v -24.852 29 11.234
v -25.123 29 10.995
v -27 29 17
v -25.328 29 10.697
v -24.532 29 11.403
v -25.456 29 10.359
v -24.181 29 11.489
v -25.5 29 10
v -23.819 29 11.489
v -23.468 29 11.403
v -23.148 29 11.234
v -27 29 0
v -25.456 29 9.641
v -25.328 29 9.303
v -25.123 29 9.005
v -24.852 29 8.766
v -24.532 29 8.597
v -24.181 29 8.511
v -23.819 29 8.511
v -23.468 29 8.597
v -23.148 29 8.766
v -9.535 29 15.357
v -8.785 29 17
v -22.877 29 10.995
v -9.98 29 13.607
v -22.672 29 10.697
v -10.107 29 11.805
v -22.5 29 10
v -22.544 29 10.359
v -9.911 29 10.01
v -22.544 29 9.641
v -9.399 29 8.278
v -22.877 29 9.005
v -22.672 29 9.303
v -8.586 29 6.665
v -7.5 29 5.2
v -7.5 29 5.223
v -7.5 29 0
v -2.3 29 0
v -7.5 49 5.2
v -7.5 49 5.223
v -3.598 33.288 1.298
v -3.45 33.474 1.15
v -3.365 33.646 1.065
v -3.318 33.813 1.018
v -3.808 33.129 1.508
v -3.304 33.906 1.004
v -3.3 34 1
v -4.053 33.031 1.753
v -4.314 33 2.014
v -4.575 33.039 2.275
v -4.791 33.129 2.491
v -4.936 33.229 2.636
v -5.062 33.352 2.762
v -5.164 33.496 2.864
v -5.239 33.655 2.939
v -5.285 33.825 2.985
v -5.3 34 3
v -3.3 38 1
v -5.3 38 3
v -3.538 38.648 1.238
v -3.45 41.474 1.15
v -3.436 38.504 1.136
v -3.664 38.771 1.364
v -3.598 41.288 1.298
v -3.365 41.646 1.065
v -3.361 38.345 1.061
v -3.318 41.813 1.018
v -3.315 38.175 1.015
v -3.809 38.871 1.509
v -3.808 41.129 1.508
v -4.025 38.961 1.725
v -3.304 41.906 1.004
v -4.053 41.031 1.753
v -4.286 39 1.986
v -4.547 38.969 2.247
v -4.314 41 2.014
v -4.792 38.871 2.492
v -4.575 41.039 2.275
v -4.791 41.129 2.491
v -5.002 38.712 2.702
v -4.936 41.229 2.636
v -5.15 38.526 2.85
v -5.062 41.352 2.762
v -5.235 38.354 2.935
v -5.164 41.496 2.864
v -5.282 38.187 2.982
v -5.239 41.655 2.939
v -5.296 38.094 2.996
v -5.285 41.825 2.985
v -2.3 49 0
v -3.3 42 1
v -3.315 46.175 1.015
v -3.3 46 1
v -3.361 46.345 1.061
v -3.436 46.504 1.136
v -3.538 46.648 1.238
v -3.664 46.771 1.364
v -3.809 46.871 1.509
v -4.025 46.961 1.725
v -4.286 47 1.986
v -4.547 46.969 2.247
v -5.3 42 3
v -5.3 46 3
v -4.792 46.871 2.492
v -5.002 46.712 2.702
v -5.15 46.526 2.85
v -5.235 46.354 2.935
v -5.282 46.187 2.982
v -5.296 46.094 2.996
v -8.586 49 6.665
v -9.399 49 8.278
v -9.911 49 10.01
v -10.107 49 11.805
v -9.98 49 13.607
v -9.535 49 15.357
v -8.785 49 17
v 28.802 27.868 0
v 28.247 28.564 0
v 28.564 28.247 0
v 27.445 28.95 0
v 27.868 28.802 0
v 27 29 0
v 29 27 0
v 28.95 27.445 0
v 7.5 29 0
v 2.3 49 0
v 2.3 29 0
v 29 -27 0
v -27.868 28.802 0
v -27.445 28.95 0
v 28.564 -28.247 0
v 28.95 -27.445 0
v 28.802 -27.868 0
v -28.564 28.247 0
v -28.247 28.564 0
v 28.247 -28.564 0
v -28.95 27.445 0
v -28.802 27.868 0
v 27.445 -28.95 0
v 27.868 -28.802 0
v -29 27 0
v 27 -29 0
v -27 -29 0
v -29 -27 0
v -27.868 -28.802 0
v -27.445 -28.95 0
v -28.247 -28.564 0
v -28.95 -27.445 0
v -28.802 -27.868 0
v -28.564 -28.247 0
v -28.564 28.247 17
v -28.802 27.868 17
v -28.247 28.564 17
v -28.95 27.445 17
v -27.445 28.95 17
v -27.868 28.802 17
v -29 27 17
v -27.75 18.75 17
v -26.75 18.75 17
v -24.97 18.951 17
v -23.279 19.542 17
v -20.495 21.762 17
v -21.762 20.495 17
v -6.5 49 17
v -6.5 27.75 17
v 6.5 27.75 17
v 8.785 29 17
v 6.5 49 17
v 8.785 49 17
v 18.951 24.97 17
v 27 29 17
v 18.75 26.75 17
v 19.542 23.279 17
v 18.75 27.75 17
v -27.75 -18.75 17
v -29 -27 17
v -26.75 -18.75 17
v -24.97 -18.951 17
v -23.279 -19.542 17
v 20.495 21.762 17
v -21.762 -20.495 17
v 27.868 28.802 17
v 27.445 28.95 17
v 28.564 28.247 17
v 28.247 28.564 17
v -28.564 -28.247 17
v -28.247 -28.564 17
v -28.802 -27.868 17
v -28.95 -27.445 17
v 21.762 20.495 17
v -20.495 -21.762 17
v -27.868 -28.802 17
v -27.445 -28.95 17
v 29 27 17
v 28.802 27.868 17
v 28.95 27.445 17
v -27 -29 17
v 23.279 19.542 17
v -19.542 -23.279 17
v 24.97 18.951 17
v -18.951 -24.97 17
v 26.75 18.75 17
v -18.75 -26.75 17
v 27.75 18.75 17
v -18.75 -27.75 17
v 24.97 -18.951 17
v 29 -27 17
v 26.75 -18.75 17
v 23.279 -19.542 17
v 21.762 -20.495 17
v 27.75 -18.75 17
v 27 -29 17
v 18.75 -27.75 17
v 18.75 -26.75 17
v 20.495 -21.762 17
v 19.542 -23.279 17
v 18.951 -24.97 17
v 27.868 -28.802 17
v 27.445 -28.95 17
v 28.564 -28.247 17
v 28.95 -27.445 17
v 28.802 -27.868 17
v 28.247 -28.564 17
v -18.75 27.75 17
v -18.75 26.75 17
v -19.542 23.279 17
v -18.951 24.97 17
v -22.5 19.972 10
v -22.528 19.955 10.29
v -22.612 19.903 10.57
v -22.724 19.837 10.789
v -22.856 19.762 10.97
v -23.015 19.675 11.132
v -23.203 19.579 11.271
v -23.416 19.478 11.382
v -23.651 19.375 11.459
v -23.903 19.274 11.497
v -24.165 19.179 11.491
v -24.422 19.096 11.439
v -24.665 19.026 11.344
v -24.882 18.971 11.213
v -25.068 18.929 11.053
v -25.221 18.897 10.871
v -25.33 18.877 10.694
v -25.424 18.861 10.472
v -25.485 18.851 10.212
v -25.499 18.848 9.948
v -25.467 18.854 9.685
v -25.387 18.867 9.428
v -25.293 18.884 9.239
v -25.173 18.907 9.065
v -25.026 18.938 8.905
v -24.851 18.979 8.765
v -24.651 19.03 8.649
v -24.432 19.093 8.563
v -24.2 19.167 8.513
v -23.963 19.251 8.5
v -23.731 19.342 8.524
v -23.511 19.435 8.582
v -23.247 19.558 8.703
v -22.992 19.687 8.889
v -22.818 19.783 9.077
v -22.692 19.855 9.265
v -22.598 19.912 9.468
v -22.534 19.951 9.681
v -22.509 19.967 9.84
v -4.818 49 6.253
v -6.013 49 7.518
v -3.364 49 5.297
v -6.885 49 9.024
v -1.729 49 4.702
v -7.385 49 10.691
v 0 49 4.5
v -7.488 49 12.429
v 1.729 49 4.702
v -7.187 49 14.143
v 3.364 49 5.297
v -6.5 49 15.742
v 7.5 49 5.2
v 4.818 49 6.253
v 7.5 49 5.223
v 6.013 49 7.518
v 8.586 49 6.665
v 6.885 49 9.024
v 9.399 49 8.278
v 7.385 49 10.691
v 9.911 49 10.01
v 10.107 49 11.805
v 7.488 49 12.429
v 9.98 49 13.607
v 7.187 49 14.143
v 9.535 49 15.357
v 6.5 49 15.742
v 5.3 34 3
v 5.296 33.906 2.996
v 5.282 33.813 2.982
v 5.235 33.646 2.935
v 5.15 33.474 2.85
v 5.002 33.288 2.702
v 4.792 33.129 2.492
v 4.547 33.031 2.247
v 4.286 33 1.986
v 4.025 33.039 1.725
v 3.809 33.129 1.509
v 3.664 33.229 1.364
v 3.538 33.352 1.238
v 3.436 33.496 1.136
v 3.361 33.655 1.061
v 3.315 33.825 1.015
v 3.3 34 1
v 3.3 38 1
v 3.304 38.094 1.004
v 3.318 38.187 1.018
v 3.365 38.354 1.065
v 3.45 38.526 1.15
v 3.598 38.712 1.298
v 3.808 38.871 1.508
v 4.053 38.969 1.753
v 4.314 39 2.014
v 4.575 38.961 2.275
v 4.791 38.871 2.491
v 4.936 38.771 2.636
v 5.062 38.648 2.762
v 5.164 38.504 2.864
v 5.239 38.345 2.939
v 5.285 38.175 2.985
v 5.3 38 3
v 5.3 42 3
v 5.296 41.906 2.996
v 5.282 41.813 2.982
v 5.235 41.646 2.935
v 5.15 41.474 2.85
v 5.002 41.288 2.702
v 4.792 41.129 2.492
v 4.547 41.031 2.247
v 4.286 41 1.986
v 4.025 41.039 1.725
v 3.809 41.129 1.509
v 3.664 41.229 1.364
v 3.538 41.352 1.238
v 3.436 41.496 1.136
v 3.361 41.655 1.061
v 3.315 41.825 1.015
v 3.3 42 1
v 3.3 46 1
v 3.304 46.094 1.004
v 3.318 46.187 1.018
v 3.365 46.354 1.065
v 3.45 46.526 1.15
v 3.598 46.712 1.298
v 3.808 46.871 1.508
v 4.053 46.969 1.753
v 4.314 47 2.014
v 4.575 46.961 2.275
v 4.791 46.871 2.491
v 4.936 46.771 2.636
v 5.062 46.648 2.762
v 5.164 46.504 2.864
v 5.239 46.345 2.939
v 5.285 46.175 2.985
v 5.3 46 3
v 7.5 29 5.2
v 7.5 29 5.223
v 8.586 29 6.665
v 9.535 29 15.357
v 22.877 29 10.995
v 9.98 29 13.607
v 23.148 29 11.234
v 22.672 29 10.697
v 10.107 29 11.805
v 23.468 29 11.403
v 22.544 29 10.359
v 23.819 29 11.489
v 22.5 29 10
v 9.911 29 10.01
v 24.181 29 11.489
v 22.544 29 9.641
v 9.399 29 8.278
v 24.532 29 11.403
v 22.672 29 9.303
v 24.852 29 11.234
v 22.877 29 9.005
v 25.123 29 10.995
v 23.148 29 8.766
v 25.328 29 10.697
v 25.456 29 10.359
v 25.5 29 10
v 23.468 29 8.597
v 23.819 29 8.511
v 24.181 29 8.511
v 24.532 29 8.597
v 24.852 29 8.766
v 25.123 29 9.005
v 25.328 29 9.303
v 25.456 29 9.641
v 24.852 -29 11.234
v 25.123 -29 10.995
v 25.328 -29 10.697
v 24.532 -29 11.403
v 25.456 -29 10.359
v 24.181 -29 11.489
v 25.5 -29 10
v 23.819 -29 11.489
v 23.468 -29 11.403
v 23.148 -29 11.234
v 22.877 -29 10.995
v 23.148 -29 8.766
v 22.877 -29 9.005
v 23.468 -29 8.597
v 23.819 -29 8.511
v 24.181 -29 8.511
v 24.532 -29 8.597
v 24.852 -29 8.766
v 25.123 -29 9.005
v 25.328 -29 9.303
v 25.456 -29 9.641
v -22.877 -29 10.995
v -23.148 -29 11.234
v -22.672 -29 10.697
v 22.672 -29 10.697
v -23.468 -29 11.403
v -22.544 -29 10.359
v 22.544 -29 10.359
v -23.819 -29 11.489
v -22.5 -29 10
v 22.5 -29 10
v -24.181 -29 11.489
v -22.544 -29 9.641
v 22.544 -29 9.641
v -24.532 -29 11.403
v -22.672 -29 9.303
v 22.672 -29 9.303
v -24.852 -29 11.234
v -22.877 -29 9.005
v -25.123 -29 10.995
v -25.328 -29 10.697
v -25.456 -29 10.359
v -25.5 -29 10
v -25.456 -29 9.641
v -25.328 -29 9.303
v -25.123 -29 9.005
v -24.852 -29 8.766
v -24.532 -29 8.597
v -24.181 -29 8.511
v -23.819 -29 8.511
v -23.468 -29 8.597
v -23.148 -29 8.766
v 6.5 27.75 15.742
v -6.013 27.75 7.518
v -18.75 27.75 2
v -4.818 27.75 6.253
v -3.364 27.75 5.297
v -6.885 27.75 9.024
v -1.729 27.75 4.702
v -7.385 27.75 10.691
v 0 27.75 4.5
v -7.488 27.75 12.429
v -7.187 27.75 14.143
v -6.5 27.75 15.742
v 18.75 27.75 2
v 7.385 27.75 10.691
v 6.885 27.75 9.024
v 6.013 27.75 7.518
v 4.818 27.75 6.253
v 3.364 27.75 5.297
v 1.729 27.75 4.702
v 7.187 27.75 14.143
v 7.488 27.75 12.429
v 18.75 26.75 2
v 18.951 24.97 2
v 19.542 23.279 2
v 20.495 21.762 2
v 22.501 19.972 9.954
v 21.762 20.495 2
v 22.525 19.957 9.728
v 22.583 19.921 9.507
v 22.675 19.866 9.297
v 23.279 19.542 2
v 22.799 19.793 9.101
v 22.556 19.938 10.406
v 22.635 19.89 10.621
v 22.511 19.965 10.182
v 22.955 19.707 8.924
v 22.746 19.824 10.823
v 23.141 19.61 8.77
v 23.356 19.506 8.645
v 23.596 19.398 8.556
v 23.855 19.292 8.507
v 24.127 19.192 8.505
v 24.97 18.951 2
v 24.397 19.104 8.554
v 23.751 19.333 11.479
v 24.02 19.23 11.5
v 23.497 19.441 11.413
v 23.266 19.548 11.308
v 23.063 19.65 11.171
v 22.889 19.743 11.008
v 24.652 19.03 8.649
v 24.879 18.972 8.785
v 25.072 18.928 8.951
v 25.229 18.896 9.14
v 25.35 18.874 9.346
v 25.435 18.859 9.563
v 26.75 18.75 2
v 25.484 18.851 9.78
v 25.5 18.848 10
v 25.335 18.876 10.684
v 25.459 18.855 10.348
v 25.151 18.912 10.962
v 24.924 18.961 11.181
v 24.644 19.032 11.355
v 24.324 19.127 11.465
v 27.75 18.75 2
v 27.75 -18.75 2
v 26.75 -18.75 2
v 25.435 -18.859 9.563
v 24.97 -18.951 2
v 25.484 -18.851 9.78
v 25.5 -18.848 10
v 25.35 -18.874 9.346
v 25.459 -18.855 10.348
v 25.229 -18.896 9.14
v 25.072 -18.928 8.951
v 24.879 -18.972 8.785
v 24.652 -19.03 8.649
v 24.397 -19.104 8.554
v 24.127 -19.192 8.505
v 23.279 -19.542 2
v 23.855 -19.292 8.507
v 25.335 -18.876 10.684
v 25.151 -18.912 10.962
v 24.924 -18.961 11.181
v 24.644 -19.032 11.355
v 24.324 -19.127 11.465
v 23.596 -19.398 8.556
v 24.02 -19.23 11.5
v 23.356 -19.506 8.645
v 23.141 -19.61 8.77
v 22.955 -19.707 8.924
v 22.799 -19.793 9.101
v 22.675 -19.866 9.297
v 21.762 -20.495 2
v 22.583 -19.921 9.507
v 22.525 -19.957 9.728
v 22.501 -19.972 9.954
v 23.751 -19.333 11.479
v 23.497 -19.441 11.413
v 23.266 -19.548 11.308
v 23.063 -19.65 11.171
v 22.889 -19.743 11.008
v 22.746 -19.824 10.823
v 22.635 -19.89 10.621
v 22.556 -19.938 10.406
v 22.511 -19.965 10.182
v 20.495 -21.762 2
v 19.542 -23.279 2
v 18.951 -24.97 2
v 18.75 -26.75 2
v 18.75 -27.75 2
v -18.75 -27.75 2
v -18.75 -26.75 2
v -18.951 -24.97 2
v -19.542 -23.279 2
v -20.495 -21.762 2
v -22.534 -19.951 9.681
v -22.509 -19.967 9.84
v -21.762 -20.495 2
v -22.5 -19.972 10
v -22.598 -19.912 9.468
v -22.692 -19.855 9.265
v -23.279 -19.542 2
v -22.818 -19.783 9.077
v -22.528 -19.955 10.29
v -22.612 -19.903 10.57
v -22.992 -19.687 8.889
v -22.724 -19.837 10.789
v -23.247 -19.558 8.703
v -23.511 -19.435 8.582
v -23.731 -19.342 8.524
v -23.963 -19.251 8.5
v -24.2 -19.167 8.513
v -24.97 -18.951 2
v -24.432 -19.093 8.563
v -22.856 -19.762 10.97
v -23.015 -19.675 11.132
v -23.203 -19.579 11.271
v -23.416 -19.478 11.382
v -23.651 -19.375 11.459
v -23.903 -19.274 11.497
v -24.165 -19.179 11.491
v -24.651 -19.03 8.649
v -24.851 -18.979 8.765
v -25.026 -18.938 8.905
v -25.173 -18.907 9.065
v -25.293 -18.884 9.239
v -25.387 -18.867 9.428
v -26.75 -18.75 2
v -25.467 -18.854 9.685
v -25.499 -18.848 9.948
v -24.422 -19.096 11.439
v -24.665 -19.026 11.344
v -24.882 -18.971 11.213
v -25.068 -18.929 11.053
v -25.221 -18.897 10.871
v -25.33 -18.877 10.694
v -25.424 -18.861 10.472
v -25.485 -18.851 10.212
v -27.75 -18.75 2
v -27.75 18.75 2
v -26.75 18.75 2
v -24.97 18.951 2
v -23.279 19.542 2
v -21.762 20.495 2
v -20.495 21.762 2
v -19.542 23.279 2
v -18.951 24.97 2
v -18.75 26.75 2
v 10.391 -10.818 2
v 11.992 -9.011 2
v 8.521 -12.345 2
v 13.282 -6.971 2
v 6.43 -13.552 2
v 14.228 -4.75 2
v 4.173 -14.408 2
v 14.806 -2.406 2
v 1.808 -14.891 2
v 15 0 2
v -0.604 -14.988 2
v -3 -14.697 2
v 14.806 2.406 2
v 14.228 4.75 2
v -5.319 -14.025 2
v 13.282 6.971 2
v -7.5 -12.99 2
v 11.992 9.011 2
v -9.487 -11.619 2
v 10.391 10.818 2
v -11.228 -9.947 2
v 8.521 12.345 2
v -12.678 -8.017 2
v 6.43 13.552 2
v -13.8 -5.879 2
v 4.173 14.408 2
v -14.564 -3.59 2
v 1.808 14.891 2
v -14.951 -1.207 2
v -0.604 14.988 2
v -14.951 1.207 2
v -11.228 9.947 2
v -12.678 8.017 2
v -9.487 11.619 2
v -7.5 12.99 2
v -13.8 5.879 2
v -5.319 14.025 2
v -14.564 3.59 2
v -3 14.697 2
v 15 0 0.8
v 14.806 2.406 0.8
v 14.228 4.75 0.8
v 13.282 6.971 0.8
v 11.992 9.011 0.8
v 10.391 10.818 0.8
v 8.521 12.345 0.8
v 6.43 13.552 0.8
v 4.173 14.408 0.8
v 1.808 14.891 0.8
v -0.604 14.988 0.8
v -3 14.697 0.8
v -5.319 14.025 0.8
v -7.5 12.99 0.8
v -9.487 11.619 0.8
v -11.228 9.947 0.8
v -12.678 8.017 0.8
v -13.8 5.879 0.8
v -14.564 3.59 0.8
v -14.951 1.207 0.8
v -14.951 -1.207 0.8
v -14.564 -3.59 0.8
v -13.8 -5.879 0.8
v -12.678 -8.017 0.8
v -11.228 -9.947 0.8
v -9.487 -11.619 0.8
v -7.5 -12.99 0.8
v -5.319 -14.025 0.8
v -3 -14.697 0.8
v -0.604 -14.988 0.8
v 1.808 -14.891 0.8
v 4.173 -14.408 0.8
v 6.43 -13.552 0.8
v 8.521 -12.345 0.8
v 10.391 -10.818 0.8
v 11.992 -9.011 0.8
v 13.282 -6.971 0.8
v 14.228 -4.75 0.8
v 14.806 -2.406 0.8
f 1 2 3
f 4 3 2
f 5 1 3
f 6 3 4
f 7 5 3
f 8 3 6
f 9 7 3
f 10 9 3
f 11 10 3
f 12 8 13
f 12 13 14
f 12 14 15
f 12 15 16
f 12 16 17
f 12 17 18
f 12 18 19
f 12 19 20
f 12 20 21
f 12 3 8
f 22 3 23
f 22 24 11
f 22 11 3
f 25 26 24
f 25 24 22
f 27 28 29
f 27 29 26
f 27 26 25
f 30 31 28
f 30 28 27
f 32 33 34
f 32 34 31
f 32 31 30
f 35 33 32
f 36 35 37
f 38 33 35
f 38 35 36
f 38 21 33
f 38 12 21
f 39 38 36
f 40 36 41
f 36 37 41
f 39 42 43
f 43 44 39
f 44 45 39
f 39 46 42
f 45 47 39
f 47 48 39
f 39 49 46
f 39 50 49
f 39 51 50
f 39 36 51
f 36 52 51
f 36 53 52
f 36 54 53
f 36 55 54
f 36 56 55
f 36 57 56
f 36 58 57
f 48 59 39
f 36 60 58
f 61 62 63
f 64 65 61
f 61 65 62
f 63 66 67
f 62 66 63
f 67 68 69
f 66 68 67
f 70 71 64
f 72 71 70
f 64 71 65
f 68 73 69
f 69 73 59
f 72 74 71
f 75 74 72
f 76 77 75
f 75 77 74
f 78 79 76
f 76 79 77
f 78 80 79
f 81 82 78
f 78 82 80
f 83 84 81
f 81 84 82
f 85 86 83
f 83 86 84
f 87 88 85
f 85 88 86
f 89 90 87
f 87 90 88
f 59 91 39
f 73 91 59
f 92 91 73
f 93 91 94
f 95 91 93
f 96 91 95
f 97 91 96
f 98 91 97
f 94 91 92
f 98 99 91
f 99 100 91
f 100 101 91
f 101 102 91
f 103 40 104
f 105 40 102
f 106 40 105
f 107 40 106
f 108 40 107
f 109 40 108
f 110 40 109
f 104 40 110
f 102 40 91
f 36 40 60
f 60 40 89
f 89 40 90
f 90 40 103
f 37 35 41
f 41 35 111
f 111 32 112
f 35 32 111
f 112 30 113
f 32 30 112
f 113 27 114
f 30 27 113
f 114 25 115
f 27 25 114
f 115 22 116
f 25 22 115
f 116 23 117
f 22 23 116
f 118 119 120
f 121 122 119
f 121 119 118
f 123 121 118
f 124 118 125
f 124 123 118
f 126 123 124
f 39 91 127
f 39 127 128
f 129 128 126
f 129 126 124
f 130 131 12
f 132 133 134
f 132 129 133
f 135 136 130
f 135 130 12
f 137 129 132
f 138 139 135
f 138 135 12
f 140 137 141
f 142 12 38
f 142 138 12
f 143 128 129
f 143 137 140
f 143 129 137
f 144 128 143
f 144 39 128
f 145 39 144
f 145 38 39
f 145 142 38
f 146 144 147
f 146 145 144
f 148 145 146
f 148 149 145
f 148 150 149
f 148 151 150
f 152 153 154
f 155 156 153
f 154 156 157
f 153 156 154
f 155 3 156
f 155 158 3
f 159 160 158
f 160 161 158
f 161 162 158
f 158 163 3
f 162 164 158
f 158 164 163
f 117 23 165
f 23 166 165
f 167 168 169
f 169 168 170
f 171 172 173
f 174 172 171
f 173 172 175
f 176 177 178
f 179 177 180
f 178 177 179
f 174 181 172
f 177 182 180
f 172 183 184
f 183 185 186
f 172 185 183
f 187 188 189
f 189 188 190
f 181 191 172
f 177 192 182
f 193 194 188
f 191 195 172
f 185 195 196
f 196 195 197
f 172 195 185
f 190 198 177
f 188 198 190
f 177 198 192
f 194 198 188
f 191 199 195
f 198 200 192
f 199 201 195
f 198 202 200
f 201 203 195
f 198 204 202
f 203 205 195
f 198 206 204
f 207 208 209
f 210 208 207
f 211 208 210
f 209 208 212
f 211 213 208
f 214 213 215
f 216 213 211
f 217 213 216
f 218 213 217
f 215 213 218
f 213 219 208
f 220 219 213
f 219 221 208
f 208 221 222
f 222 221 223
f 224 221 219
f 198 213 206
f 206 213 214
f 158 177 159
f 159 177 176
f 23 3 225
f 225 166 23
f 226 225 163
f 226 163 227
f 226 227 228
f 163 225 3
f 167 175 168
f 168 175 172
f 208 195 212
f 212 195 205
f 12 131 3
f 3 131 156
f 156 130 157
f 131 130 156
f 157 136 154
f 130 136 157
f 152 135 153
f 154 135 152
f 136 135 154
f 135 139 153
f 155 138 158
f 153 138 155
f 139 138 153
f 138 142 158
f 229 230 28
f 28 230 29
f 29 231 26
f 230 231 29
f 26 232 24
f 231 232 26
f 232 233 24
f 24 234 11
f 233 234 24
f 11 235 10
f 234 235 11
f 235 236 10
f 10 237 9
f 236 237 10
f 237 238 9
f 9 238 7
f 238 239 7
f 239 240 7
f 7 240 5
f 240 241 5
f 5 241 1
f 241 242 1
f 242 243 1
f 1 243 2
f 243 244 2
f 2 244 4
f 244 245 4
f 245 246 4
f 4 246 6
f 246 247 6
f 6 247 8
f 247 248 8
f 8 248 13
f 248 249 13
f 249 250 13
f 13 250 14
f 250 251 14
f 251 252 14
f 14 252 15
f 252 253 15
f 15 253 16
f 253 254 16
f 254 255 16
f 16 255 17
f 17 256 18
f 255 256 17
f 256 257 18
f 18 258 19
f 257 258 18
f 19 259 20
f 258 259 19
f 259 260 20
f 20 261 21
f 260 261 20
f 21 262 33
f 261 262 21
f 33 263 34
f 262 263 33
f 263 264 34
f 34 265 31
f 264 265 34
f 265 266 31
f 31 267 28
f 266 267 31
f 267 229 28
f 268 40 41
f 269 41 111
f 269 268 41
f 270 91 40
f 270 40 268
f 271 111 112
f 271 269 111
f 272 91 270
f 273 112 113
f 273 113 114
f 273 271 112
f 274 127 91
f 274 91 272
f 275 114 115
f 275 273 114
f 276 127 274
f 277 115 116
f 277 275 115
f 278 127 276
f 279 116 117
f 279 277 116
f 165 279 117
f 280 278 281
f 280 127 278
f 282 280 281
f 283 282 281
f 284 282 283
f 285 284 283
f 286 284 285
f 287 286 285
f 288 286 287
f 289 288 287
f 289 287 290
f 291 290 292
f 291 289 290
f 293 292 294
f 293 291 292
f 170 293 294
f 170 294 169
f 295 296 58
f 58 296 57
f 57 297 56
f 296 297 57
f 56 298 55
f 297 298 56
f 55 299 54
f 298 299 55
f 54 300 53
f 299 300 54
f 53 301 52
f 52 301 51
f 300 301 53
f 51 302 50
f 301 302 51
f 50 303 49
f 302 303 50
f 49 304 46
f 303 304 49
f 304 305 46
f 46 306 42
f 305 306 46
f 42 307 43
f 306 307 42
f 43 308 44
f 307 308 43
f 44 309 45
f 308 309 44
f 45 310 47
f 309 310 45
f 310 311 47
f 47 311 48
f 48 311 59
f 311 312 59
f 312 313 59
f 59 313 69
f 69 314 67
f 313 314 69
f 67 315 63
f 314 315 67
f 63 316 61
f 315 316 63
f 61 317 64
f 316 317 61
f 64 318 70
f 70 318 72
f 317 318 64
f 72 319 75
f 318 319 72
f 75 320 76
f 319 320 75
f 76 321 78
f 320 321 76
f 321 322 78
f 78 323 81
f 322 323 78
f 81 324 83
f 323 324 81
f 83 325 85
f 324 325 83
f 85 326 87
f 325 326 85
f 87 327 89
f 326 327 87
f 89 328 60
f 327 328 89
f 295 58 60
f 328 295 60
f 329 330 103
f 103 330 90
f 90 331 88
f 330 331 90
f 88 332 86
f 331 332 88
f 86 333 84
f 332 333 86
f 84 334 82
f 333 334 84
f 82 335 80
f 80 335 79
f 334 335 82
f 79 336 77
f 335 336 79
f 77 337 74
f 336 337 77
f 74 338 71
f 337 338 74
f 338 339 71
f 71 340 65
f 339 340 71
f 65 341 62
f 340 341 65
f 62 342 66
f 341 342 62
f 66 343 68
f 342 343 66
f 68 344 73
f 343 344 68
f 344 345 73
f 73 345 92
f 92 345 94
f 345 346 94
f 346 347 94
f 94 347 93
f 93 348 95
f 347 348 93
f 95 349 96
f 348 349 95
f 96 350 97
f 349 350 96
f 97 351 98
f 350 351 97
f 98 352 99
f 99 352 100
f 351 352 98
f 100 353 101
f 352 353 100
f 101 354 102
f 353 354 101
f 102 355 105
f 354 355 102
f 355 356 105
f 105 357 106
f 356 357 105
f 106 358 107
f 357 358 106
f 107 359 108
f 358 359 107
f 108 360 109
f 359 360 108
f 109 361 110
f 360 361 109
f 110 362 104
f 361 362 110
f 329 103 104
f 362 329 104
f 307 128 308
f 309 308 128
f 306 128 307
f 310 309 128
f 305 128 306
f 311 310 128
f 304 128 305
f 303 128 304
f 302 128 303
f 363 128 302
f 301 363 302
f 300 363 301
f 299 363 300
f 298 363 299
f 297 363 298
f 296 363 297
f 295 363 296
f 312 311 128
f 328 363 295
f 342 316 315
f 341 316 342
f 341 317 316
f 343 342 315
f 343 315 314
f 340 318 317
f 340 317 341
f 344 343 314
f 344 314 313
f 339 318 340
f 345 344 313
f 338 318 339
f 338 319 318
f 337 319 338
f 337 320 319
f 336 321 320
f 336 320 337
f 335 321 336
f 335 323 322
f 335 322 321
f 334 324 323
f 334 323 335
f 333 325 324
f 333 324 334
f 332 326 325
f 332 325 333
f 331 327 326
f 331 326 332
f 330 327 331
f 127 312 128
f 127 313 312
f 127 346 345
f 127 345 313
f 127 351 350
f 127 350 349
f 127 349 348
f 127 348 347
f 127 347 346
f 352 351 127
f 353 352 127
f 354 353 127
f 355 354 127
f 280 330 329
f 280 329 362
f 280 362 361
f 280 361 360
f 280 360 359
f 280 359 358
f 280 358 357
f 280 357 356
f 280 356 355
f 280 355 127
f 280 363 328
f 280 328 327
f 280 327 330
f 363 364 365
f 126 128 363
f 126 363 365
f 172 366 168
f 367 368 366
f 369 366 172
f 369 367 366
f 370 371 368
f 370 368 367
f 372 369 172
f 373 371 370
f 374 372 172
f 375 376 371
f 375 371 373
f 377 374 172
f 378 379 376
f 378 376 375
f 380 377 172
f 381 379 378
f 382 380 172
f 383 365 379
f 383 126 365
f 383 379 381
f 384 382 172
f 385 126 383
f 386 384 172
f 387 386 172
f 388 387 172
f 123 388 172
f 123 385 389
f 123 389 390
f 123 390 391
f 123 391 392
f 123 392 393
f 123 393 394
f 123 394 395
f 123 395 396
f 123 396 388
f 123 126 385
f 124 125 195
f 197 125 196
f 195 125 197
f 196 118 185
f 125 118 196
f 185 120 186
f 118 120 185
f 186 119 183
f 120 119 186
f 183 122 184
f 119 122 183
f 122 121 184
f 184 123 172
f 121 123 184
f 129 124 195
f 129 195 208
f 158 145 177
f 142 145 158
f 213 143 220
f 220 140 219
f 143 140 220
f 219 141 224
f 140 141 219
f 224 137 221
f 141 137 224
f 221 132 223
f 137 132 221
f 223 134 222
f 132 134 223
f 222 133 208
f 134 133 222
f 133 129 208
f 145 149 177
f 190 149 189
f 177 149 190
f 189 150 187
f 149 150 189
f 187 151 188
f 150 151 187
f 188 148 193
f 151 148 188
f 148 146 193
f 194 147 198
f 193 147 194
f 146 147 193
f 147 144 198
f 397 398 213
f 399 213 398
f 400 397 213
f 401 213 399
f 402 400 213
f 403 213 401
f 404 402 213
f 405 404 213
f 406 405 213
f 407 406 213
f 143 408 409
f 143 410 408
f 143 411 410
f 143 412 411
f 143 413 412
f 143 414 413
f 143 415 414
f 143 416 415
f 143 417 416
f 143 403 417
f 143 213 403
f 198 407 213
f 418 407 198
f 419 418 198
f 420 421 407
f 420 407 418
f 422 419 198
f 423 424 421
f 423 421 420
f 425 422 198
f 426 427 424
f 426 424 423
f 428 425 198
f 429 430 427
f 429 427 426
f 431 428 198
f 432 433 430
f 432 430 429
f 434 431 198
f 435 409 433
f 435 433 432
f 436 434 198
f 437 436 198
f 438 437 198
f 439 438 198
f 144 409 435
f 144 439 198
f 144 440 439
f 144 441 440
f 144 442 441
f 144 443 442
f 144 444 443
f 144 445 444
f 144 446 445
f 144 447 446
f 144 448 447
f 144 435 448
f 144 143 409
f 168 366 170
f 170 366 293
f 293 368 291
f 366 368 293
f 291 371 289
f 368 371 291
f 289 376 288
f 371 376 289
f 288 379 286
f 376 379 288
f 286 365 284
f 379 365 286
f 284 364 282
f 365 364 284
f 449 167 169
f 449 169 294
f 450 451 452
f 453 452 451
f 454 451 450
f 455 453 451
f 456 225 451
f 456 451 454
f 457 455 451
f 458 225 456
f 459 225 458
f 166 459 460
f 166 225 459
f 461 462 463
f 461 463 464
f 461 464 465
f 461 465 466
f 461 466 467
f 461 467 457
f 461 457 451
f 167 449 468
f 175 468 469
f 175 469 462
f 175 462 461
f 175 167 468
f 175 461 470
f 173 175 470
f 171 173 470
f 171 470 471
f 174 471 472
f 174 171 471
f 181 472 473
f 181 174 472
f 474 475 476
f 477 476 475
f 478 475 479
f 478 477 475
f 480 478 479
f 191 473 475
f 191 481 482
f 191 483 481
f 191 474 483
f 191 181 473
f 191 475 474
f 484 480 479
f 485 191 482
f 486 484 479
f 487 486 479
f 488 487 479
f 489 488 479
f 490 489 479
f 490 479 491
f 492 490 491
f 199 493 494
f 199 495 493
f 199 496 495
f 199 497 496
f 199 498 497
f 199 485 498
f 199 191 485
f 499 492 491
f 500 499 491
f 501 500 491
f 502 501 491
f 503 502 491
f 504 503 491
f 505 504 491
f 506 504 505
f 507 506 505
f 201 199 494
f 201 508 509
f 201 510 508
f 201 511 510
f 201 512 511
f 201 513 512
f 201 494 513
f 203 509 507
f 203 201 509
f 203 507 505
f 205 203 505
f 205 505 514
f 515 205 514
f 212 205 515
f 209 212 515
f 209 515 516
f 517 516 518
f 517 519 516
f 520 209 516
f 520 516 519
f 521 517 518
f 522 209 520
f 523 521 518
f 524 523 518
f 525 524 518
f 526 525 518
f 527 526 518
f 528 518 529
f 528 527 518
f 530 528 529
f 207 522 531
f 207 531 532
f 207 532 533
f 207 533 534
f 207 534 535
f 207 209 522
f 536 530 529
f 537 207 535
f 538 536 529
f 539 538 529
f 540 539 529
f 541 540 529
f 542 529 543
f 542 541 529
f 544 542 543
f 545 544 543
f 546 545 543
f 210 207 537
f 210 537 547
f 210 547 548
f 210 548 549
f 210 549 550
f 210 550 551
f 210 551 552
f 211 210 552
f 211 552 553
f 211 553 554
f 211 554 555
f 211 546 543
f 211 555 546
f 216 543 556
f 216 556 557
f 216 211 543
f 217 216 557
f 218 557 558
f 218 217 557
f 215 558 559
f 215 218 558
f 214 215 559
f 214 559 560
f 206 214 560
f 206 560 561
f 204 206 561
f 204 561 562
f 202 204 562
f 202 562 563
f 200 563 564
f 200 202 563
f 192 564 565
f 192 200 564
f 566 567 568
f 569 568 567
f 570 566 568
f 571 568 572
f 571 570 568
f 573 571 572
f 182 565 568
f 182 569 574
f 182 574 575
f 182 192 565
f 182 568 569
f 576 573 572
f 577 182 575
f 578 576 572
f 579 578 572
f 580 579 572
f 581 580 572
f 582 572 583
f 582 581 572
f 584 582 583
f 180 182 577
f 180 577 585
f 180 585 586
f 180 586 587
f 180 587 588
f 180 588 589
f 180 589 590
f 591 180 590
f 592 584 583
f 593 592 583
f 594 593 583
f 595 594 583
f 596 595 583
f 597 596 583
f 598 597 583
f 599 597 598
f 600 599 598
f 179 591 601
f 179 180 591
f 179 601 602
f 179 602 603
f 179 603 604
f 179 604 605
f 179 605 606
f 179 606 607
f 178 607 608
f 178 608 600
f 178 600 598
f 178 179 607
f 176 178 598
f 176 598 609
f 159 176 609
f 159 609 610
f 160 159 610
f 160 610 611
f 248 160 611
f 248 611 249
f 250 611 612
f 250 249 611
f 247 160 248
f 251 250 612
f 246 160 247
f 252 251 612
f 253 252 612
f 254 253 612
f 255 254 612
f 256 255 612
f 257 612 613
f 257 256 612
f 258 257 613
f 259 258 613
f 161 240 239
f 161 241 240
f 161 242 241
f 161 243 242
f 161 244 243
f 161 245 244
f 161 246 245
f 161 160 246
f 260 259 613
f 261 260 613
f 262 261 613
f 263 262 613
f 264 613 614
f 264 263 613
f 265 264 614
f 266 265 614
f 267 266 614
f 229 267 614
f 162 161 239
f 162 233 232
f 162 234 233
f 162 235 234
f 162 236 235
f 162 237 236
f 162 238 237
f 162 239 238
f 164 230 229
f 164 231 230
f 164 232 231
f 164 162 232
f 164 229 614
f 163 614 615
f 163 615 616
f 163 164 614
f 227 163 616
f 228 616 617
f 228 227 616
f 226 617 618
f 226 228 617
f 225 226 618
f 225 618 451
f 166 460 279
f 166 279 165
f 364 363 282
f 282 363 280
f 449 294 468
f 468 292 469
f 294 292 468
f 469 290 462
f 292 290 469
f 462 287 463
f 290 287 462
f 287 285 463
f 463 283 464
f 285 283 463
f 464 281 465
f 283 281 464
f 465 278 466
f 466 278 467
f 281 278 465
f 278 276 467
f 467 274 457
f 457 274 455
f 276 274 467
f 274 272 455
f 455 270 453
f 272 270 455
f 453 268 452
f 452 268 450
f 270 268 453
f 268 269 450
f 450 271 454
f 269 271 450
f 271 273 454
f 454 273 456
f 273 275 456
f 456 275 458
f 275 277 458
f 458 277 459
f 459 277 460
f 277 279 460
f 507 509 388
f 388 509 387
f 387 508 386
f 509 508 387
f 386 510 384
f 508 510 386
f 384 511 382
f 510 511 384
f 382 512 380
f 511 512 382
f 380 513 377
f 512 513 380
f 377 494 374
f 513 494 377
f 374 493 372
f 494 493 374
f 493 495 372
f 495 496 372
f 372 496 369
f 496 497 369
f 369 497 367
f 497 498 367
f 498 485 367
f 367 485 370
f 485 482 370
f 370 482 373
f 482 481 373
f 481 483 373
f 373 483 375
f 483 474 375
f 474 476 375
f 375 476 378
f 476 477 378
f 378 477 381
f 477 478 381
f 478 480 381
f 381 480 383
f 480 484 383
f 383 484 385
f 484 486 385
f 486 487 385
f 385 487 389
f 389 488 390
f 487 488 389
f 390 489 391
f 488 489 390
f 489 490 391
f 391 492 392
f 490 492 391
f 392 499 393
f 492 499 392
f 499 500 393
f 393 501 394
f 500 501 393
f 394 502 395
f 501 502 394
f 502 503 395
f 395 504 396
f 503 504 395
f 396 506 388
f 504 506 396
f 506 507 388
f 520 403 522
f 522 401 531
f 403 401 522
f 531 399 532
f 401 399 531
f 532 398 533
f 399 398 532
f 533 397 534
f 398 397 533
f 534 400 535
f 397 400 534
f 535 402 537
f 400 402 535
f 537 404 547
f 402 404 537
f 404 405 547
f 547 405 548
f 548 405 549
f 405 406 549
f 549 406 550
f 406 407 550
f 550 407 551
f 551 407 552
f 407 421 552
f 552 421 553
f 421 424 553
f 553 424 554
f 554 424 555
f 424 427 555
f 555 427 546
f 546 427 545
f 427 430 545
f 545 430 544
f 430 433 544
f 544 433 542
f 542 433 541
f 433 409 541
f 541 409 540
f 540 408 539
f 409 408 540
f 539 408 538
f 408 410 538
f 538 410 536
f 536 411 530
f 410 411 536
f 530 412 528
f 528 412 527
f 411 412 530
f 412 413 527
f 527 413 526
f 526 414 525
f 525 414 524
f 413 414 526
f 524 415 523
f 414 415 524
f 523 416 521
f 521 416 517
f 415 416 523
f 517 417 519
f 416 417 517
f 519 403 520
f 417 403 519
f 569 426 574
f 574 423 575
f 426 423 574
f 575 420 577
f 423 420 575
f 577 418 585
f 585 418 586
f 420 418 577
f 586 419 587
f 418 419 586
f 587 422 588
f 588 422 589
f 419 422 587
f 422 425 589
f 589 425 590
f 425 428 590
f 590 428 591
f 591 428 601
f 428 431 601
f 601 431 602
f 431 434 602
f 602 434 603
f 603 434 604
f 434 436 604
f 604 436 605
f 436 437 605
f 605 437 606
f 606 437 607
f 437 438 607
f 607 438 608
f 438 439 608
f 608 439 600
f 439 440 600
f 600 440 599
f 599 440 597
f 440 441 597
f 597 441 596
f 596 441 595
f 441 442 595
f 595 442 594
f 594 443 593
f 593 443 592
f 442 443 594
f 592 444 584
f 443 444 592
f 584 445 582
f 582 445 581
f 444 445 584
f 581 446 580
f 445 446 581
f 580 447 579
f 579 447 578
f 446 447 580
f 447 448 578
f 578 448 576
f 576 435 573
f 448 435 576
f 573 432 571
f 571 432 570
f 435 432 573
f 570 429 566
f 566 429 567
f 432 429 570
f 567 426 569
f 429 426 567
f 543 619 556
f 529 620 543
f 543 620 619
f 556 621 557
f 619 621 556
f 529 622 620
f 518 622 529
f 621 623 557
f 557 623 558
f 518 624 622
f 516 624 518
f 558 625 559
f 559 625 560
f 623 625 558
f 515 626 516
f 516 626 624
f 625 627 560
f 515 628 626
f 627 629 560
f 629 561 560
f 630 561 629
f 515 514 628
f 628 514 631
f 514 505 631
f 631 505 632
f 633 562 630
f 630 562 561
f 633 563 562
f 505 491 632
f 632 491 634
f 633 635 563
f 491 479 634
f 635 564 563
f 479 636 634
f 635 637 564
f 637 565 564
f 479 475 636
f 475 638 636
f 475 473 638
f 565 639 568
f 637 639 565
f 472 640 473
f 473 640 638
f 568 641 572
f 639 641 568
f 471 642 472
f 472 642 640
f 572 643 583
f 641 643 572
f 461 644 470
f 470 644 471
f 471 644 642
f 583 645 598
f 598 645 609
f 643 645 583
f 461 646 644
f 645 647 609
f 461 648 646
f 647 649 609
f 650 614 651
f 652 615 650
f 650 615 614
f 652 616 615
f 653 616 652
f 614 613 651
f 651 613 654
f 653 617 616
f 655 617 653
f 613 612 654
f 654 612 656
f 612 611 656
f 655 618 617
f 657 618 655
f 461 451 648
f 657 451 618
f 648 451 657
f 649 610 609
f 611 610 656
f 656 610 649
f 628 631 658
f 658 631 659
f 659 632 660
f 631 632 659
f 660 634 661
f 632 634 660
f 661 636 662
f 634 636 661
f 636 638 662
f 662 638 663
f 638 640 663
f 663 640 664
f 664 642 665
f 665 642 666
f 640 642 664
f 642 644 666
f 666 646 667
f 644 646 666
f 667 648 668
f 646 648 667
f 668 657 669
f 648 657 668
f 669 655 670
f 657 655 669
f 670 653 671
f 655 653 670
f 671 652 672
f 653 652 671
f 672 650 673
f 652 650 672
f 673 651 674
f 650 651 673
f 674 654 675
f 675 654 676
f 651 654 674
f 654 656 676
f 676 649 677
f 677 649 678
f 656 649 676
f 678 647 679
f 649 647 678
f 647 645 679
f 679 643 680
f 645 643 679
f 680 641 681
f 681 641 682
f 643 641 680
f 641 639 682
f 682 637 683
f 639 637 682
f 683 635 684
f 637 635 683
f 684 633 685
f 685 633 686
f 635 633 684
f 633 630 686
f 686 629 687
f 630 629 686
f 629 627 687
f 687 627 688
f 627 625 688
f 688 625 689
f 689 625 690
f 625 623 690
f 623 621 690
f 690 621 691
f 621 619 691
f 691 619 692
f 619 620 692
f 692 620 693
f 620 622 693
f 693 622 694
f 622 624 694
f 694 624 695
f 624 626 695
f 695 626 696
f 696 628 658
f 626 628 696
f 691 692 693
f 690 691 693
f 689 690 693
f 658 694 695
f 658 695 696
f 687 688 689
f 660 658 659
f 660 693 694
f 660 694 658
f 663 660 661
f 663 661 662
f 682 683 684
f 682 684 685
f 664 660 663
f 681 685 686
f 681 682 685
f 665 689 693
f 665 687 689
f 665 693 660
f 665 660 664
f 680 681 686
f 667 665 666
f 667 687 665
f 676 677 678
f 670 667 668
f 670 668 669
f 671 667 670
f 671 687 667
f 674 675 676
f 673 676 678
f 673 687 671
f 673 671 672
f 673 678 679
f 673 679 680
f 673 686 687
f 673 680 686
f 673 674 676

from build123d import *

# Parameters (mm, degrees)
PAD_DEPTH            = 22
POCKET_DEPTH         = 20
PAD001_DEPTH         = 20
POCKET001_DEPTH      = 5
SKETCH004_R          = 1.5
SKETCH004_W          = 80
SKETCH004_H          = 10
POCKET002_DEPTH      = 78.001
CHAMFER_SIZE         = 5.2
SKETCH005_R          = 15
POCKET003_DEPTH      = 1.2
POCKET004_DEPTH      = 29.001
POCKET004_DEPTH_BACK = -29.001


with BuildPart() as part:
    # Sketch → Pad (new body)
    with BuildSketch(Plane.XY):
        with BuildLine():
            Line((-27, 29), (27, 29))
            ThreePointArc((29, 27), (28.414214, 28.414214), (27, 29))
            Line((29, 27), (29, -27))
            ThreePointArc((27, -29), (28.414214, -28.414214), (29, -27))
            Line((27, -29), (-27, -29))
            ThreePointArc((-29, -27), (-28.414214, -28.414214), (-27, -29))
            Line((-29, -27), (-29, 27))
            ThreePointArc((-27, 29), (-28.414214, 28.414214), (-29, 27))
        make_face()
    extrude(amount=PAD_DEPTH)

    # Sketch001 (on Face10 of Pad) → Pocket (cut)
    with BuildSketch(Plane.XY.offset(22)):
        with BuildLine():
            Line((-18.75, 27.75), (18.75, 27.75))
            Line((18.75, 27.75), (18.75, 26.75))
            ThreePointArc((18.75, 26.75), (21.093146, 21.093146), (26.75, 18.75))
            Line((26.75, 18.75), (27.75, 18.75))
            Line((27.75, 18.75), (27.75, -18.75))
            Line((27.75, -18.75), (26.75, -18.75))
            ThreePointArc((26.75, -18.75), (21.093146, -21.093146), (18.75, -26.75))
            Line((18.75, -26.75), (18.75, -27.75))
            Line((18.75, -27.75), (-18.75, -27.75))
            Line((-18.75, -27.75), (-18.75, -26.75))
            ThreePointArc((-18.75, -26.75), (-21.093146, -21.093146), (-26.75, -18.75))
            Line((-26.75, -18.75), (-27.75, -18.75))
            Line((-27.75, -18.75), (-27.75, 18.75))
            Line((-27.75, 18.75), (-26.75, 18.75))
            ThreePointArc((-26.75, 18.75), (-21.093146, 21.093146), (-18.75, 26.75))
            Line((-18.75, 26.75), (-18.75, 27.75))
        make_face()
    extrude(amount=-POCKET_DEPTH, mode=Mode.SUBTRACT)

    # Sketch002 (on Face1 of Pocket) → Pad001 (join)
    with BuildSketch(Plane(origin=(0, 29, 0), x_dir=(-1, 0, 0), z_dir=(0, 1, 0))):
        with BuildLine():
            ThreePointArc((-6.5, 19.741657), (-10.084682, 12.694582), (-7.5, 5.222592))
            Line((-7.5, 5.222592), (-7.5, 0))
            Line((-7.5, 0), (7.5, 0))
            Line((7.5, 0), (7.5, 5.222592))
            ThreePointArc((7.5, 5.222592), (10.084682, 12.694582), (6.5, 19.741657))
            Line((6.5, 15.741657), (6.5, 19.741657))
            ThreePointArc((-6.5, 15.741657), (0, 4.5), (6.5, 15.741657))
            Line((-6.5, 15.741657), (-6.5, 19.741657))
        make_face()
    extrude(amount=PAD001_DEPTH)

    # Sketch003 → Pocket001 (cut)
    with BuildSketch(Plane(origin=(0, 29, 0), x_dir=(-1, 0, 0), z_dir=(0, 1, 0))):
        with BuildLine():
            ThreePointArc((-6.5, 15.741657), (0, 4.5), (6.5, 15.741657))
            Line((6.5, 25.741657), (6.5, 15.741657))
            Line((-6.5, 25.741657), (6.5, 25.741657))
            Line((-6.5, 15.741657), (-6.5, 25.741657))
        make_face()
    extrude(amount=-POCKET001_DEPTH, mode=Mode.SUBTRACT)

    # Sketch004 → Pocket002 (cut, through all)
    with BuildSketch(Plane.XZ.offset(29)):
        with Locations((-24, 10)):
            Circle(SKETCH004_R)
        with Locations((24, 10)):
            Circle(SKETCH004_R)
        with Locations((0, 22)):
            Rectangle(SKETCH004_W, SKETCH004_H)
    extrude(amount=-POCKET002_DEPTH, mode=Mode.SUBTRACT)

    # Chamfer
    chamfer_edges = [part.edges().sort_by_distance(p)[0] for p in [
        (7.5, 39, 0),
        (-7.5, 39, 0),
    ]]
    chamfer(chamfer_edges, length=CHAMFER_SIZE)

    # Sketch005 (on Face42 of Chamfer) → Pocket003 (cut)
    with BuildSketch(Plane.XY.offset(2)):
        Circle(SKETCH005_R)
    extrude(amount=-POCKET003_DEPTH, mode=Mode.SUBTRACT)

    # Sketch006 → Pocket004 (cut, two sides)
    with BuildSketch(Plane.YZ) as pocket004_sk:
        with BuildLine():
            ThreePointArc((34, 3), (33, 2), (34, 1))
            Line((34, 1), (38, 1))
            ThreePointArc((38, 1), (39, 2), (38, 3))
            Line((34, 3), (38, 3))
        make_face()
        with BuildLine():
            ThreePointArc((42, 3), (41, 2), (42, 1))
            Line((42, 1), (46, 1))
            ThreePointArc((46, 1), (47, 2), (46, 3))
            Line((42, 3), (46, 3))
        make_face()
    extrude(amount=-POCKET004_DEPTH, mode=Mode.SUBTRACT)
    extrude(pocket004_sk.sketch, amount=-POCKET004_DEPTH_BACK, mode=Mode.SUBTRACT)


solid = part.part
